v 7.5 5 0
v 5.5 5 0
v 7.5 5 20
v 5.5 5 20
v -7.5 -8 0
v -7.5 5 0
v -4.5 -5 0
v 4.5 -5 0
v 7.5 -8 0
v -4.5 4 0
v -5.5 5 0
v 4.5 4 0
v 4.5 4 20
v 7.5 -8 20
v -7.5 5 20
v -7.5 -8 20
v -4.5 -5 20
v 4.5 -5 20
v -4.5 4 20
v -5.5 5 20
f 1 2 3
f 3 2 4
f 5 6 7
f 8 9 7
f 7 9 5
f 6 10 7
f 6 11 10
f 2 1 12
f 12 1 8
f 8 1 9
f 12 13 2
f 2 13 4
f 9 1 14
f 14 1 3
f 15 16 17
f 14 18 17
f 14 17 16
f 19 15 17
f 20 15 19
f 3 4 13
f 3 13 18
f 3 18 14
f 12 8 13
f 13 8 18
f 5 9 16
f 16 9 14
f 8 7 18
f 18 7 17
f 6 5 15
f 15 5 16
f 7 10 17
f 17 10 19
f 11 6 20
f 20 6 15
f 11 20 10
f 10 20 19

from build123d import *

# Parameters (mm, degrees)
PAD_DEPTH    = 20
CHAMFER_SIZE = 1


with BuildPart() as part:
    # Sketch → Pad (new body)
    with BuildSketch(Plane.XY):
        Polygon((-7.5, 5), (-7.5, -8), (7.5, -8), (7.5, 5), (4.5, 5), (4.5, -5), (-4.5, -5), (-4.5, 5), align=None)
    extrude(amount=PAD_DEPTH)

    # Chamfer
    chamfer_edges = [part.edges().sort_by_distance(p)[0] for p in [
        (-4.5, 5, 10),
        (4.5, 5, 10),
    ]]
    chamfer(chamfer_edges, length=CHAMFER_SIZE)


solid = part.part
